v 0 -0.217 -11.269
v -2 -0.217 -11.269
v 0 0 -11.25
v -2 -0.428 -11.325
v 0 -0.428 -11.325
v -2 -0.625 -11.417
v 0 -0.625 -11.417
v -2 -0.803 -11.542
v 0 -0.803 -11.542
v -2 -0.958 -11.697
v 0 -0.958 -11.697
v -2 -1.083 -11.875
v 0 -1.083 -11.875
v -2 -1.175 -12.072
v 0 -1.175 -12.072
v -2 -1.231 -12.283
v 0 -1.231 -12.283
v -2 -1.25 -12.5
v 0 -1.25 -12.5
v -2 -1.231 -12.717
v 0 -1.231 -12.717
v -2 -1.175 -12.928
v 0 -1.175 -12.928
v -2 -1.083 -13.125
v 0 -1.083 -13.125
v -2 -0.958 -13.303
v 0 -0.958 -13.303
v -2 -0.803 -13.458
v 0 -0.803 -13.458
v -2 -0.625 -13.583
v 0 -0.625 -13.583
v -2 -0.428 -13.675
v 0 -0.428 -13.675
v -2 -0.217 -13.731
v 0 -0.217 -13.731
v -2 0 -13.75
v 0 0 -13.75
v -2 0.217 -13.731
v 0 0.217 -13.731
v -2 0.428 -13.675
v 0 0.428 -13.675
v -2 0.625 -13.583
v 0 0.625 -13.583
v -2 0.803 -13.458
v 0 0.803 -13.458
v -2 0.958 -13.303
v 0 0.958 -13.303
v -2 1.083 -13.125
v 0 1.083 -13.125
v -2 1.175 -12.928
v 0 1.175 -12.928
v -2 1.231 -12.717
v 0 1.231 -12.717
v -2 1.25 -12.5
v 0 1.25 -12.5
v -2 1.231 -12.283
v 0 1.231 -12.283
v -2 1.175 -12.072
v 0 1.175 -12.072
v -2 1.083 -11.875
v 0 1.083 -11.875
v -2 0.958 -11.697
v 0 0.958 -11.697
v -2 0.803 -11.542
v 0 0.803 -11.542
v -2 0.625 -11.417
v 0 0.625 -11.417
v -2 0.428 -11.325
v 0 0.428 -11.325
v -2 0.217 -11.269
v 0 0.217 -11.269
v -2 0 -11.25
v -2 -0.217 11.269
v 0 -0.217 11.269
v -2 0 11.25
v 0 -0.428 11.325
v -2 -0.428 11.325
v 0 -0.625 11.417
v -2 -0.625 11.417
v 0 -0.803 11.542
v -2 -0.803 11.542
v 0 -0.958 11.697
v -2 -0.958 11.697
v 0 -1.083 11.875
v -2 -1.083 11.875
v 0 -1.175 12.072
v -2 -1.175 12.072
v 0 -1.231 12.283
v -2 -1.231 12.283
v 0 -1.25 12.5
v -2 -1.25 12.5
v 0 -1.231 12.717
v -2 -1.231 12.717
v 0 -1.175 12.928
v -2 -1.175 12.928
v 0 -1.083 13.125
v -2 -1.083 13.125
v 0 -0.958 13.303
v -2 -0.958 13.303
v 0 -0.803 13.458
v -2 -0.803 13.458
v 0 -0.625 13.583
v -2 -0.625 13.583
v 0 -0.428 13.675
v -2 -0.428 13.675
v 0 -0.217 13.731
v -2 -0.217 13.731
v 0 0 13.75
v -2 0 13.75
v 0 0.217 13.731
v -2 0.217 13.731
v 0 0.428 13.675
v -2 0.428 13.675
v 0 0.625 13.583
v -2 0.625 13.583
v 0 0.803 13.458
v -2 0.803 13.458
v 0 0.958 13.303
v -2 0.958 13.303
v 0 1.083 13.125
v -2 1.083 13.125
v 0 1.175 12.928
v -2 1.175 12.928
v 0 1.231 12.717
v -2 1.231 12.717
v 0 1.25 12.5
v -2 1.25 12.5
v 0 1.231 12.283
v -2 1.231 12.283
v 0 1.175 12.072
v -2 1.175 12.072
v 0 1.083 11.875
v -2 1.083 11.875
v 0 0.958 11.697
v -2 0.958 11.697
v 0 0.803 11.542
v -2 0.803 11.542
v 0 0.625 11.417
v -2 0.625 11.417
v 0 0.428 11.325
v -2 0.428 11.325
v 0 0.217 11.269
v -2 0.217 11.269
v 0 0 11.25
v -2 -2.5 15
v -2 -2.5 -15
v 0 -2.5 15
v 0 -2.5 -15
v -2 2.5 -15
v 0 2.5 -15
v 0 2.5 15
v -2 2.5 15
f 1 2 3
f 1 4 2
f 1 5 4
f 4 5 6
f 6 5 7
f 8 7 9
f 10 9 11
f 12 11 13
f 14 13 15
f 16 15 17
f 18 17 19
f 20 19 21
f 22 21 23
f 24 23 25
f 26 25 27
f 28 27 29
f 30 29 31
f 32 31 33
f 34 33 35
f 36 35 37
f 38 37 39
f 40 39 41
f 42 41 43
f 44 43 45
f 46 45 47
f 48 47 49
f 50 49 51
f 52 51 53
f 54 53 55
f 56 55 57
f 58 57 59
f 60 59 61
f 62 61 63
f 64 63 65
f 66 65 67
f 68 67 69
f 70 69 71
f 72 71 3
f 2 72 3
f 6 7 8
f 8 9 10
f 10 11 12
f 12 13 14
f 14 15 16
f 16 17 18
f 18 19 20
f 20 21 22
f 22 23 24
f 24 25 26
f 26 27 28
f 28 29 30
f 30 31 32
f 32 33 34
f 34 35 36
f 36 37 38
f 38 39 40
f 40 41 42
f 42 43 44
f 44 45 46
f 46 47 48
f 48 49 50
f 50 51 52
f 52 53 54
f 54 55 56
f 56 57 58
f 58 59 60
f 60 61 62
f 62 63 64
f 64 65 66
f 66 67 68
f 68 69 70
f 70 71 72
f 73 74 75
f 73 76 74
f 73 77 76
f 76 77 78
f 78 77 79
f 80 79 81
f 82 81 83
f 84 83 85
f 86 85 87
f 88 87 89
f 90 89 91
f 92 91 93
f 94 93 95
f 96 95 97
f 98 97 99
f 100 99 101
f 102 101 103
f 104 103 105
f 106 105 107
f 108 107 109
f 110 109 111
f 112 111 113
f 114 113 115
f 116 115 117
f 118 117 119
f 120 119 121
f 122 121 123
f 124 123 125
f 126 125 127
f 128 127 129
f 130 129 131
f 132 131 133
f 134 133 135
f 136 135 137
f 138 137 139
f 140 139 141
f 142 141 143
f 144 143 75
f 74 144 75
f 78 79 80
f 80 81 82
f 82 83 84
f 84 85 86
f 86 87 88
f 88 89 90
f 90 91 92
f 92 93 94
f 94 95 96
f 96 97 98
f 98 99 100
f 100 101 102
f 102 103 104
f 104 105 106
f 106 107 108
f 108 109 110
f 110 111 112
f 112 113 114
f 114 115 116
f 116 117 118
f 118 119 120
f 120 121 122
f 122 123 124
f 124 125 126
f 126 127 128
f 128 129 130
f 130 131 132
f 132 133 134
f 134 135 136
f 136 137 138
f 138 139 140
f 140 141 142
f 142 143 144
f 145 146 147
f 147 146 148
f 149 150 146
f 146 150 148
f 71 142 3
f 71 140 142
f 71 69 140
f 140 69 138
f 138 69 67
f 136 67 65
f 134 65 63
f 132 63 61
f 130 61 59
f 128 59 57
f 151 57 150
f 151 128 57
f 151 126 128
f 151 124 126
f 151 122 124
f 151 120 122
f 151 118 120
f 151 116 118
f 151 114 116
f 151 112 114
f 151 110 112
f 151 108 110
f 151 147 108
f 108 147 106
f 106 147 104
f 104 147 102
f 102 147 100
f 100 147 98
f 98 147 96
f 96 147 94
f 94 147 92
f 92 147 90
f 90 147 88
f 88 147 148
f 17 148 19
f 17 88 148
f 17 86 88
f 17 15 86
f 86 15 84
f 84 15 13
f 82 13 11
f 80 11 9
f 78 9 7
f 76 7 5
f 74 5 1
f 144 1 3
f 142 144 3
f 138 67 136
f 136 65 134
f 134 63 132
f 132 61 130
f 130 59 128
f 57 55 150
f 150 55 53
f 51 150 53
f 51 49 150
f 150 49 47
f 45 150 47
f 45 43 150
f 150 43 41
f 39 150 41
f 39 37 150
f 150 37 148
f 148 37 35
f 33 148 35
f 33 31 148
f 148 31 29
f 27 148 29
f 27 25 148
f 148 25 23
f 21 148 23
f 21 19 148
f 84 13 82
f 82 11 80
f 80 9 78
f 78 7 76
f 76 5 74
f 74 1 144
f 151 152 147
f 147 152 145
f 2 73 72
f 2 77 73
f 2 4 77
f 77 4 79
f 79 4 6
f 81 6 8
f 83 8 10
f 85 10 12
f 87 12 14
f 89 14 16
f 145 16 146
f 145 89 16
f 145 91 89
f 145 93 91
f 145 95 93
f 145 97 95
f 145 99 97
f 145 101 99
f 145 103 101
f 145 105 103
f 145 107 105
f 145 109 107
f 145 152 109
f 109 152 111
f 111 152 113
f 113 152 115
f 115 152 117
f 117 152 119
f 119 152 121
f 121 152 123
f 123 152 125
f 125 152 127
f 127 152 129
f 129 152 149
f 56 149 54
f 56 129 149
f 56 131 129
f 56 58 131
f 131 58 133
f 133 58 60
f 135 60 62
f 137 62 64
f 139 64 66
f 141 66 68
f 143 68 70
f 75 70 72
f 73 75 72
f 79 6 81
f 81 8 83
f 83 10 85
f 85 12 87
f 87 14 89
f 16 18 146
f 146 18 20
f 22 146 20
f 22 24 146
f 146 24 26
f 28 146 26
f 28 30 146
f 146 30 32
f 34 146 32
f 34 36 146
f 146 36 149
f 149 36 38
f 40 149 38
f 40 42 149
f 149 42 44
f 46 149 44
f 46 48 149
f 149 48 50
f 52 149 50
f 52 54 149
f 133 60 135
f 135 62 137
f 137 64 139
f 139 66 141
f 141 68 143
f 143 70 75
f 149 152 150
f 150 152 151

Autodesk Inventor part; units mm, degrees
ref_plane "YZ Plane" through (0, 0, 0) normal (1, 0, 0) x (0, 1, 0)
ref_plane "XZ Plane" through (0, 0, 0) normal (0, 1, 0) x (-1, 0, 0)
sketch "スケッチ1" plane through (0, 0, 0) normal (0, 1, 0) x (-1, 0, 0)
  line L0 (2, -15) -> (2, 15)
  line L1 (-2, -15) -> (2, 15) construction
  line L2 (2, -15) -> (-2, 15) construction
  line L3 (0, -15) -> (0, 15)
  line L4 (0, -15) -> (2, -15)
  line L5 (2, 15) -> (0, 15)
  point P0 (0, 0)
  dimension "d1" = 30
  dimension "d33" = 2
extrude "押し出し1" add sketch "スケッチ1" along normal mid plane 5
sketch "スケッチ2" plane through (0, 2.5, 0) normal (0, 1, 0) x (1, 0, 0)
  line L0 (-2, -15) -> (2, -15) projected
  line L1 (0, -15) -> (2, -15)
  line L2 (2, -15) -> (2, -5)
  line L3 (2, -5) -> (0, -5)
  line L4 (0, -5) -> (0, -15)
  point P0 (0, 0)
  dimension "d4" = 2
  dimension "d5" = 10
extrude "押し出し2" cut sketch "スケッチ2" against normal blind 5
sketch "スケッチ4" plane through (0, 2.5, 15) normal (1, 0, 0) x (0, 0, -1)
  circle A0 centre (2.5, -2.5) radius 1.25
  point P0 (15, -2.5)
  dimension "d12" = 2.5
extrude "押し出し4" cut sketch "スケッチ4" against normal blind 5
ref_plane "作業平面1" through (0, 2.5, -15) normal (-1, 0, 0) x (0, 0, 1)
sketch "スケッチ5" plane through (0, 2.5, -15) normal (-1, 0, 0) x (0, 0, 1)
  circle A0 centre (2.5, -2.5) radius 1.25
  point P0 (15, -2.5)
  dimension "d15" = 2.5
extrude "押し出し5" cut sketch "スケッチ5" along normal mid plane 5
properties part number "promo_arm2"
